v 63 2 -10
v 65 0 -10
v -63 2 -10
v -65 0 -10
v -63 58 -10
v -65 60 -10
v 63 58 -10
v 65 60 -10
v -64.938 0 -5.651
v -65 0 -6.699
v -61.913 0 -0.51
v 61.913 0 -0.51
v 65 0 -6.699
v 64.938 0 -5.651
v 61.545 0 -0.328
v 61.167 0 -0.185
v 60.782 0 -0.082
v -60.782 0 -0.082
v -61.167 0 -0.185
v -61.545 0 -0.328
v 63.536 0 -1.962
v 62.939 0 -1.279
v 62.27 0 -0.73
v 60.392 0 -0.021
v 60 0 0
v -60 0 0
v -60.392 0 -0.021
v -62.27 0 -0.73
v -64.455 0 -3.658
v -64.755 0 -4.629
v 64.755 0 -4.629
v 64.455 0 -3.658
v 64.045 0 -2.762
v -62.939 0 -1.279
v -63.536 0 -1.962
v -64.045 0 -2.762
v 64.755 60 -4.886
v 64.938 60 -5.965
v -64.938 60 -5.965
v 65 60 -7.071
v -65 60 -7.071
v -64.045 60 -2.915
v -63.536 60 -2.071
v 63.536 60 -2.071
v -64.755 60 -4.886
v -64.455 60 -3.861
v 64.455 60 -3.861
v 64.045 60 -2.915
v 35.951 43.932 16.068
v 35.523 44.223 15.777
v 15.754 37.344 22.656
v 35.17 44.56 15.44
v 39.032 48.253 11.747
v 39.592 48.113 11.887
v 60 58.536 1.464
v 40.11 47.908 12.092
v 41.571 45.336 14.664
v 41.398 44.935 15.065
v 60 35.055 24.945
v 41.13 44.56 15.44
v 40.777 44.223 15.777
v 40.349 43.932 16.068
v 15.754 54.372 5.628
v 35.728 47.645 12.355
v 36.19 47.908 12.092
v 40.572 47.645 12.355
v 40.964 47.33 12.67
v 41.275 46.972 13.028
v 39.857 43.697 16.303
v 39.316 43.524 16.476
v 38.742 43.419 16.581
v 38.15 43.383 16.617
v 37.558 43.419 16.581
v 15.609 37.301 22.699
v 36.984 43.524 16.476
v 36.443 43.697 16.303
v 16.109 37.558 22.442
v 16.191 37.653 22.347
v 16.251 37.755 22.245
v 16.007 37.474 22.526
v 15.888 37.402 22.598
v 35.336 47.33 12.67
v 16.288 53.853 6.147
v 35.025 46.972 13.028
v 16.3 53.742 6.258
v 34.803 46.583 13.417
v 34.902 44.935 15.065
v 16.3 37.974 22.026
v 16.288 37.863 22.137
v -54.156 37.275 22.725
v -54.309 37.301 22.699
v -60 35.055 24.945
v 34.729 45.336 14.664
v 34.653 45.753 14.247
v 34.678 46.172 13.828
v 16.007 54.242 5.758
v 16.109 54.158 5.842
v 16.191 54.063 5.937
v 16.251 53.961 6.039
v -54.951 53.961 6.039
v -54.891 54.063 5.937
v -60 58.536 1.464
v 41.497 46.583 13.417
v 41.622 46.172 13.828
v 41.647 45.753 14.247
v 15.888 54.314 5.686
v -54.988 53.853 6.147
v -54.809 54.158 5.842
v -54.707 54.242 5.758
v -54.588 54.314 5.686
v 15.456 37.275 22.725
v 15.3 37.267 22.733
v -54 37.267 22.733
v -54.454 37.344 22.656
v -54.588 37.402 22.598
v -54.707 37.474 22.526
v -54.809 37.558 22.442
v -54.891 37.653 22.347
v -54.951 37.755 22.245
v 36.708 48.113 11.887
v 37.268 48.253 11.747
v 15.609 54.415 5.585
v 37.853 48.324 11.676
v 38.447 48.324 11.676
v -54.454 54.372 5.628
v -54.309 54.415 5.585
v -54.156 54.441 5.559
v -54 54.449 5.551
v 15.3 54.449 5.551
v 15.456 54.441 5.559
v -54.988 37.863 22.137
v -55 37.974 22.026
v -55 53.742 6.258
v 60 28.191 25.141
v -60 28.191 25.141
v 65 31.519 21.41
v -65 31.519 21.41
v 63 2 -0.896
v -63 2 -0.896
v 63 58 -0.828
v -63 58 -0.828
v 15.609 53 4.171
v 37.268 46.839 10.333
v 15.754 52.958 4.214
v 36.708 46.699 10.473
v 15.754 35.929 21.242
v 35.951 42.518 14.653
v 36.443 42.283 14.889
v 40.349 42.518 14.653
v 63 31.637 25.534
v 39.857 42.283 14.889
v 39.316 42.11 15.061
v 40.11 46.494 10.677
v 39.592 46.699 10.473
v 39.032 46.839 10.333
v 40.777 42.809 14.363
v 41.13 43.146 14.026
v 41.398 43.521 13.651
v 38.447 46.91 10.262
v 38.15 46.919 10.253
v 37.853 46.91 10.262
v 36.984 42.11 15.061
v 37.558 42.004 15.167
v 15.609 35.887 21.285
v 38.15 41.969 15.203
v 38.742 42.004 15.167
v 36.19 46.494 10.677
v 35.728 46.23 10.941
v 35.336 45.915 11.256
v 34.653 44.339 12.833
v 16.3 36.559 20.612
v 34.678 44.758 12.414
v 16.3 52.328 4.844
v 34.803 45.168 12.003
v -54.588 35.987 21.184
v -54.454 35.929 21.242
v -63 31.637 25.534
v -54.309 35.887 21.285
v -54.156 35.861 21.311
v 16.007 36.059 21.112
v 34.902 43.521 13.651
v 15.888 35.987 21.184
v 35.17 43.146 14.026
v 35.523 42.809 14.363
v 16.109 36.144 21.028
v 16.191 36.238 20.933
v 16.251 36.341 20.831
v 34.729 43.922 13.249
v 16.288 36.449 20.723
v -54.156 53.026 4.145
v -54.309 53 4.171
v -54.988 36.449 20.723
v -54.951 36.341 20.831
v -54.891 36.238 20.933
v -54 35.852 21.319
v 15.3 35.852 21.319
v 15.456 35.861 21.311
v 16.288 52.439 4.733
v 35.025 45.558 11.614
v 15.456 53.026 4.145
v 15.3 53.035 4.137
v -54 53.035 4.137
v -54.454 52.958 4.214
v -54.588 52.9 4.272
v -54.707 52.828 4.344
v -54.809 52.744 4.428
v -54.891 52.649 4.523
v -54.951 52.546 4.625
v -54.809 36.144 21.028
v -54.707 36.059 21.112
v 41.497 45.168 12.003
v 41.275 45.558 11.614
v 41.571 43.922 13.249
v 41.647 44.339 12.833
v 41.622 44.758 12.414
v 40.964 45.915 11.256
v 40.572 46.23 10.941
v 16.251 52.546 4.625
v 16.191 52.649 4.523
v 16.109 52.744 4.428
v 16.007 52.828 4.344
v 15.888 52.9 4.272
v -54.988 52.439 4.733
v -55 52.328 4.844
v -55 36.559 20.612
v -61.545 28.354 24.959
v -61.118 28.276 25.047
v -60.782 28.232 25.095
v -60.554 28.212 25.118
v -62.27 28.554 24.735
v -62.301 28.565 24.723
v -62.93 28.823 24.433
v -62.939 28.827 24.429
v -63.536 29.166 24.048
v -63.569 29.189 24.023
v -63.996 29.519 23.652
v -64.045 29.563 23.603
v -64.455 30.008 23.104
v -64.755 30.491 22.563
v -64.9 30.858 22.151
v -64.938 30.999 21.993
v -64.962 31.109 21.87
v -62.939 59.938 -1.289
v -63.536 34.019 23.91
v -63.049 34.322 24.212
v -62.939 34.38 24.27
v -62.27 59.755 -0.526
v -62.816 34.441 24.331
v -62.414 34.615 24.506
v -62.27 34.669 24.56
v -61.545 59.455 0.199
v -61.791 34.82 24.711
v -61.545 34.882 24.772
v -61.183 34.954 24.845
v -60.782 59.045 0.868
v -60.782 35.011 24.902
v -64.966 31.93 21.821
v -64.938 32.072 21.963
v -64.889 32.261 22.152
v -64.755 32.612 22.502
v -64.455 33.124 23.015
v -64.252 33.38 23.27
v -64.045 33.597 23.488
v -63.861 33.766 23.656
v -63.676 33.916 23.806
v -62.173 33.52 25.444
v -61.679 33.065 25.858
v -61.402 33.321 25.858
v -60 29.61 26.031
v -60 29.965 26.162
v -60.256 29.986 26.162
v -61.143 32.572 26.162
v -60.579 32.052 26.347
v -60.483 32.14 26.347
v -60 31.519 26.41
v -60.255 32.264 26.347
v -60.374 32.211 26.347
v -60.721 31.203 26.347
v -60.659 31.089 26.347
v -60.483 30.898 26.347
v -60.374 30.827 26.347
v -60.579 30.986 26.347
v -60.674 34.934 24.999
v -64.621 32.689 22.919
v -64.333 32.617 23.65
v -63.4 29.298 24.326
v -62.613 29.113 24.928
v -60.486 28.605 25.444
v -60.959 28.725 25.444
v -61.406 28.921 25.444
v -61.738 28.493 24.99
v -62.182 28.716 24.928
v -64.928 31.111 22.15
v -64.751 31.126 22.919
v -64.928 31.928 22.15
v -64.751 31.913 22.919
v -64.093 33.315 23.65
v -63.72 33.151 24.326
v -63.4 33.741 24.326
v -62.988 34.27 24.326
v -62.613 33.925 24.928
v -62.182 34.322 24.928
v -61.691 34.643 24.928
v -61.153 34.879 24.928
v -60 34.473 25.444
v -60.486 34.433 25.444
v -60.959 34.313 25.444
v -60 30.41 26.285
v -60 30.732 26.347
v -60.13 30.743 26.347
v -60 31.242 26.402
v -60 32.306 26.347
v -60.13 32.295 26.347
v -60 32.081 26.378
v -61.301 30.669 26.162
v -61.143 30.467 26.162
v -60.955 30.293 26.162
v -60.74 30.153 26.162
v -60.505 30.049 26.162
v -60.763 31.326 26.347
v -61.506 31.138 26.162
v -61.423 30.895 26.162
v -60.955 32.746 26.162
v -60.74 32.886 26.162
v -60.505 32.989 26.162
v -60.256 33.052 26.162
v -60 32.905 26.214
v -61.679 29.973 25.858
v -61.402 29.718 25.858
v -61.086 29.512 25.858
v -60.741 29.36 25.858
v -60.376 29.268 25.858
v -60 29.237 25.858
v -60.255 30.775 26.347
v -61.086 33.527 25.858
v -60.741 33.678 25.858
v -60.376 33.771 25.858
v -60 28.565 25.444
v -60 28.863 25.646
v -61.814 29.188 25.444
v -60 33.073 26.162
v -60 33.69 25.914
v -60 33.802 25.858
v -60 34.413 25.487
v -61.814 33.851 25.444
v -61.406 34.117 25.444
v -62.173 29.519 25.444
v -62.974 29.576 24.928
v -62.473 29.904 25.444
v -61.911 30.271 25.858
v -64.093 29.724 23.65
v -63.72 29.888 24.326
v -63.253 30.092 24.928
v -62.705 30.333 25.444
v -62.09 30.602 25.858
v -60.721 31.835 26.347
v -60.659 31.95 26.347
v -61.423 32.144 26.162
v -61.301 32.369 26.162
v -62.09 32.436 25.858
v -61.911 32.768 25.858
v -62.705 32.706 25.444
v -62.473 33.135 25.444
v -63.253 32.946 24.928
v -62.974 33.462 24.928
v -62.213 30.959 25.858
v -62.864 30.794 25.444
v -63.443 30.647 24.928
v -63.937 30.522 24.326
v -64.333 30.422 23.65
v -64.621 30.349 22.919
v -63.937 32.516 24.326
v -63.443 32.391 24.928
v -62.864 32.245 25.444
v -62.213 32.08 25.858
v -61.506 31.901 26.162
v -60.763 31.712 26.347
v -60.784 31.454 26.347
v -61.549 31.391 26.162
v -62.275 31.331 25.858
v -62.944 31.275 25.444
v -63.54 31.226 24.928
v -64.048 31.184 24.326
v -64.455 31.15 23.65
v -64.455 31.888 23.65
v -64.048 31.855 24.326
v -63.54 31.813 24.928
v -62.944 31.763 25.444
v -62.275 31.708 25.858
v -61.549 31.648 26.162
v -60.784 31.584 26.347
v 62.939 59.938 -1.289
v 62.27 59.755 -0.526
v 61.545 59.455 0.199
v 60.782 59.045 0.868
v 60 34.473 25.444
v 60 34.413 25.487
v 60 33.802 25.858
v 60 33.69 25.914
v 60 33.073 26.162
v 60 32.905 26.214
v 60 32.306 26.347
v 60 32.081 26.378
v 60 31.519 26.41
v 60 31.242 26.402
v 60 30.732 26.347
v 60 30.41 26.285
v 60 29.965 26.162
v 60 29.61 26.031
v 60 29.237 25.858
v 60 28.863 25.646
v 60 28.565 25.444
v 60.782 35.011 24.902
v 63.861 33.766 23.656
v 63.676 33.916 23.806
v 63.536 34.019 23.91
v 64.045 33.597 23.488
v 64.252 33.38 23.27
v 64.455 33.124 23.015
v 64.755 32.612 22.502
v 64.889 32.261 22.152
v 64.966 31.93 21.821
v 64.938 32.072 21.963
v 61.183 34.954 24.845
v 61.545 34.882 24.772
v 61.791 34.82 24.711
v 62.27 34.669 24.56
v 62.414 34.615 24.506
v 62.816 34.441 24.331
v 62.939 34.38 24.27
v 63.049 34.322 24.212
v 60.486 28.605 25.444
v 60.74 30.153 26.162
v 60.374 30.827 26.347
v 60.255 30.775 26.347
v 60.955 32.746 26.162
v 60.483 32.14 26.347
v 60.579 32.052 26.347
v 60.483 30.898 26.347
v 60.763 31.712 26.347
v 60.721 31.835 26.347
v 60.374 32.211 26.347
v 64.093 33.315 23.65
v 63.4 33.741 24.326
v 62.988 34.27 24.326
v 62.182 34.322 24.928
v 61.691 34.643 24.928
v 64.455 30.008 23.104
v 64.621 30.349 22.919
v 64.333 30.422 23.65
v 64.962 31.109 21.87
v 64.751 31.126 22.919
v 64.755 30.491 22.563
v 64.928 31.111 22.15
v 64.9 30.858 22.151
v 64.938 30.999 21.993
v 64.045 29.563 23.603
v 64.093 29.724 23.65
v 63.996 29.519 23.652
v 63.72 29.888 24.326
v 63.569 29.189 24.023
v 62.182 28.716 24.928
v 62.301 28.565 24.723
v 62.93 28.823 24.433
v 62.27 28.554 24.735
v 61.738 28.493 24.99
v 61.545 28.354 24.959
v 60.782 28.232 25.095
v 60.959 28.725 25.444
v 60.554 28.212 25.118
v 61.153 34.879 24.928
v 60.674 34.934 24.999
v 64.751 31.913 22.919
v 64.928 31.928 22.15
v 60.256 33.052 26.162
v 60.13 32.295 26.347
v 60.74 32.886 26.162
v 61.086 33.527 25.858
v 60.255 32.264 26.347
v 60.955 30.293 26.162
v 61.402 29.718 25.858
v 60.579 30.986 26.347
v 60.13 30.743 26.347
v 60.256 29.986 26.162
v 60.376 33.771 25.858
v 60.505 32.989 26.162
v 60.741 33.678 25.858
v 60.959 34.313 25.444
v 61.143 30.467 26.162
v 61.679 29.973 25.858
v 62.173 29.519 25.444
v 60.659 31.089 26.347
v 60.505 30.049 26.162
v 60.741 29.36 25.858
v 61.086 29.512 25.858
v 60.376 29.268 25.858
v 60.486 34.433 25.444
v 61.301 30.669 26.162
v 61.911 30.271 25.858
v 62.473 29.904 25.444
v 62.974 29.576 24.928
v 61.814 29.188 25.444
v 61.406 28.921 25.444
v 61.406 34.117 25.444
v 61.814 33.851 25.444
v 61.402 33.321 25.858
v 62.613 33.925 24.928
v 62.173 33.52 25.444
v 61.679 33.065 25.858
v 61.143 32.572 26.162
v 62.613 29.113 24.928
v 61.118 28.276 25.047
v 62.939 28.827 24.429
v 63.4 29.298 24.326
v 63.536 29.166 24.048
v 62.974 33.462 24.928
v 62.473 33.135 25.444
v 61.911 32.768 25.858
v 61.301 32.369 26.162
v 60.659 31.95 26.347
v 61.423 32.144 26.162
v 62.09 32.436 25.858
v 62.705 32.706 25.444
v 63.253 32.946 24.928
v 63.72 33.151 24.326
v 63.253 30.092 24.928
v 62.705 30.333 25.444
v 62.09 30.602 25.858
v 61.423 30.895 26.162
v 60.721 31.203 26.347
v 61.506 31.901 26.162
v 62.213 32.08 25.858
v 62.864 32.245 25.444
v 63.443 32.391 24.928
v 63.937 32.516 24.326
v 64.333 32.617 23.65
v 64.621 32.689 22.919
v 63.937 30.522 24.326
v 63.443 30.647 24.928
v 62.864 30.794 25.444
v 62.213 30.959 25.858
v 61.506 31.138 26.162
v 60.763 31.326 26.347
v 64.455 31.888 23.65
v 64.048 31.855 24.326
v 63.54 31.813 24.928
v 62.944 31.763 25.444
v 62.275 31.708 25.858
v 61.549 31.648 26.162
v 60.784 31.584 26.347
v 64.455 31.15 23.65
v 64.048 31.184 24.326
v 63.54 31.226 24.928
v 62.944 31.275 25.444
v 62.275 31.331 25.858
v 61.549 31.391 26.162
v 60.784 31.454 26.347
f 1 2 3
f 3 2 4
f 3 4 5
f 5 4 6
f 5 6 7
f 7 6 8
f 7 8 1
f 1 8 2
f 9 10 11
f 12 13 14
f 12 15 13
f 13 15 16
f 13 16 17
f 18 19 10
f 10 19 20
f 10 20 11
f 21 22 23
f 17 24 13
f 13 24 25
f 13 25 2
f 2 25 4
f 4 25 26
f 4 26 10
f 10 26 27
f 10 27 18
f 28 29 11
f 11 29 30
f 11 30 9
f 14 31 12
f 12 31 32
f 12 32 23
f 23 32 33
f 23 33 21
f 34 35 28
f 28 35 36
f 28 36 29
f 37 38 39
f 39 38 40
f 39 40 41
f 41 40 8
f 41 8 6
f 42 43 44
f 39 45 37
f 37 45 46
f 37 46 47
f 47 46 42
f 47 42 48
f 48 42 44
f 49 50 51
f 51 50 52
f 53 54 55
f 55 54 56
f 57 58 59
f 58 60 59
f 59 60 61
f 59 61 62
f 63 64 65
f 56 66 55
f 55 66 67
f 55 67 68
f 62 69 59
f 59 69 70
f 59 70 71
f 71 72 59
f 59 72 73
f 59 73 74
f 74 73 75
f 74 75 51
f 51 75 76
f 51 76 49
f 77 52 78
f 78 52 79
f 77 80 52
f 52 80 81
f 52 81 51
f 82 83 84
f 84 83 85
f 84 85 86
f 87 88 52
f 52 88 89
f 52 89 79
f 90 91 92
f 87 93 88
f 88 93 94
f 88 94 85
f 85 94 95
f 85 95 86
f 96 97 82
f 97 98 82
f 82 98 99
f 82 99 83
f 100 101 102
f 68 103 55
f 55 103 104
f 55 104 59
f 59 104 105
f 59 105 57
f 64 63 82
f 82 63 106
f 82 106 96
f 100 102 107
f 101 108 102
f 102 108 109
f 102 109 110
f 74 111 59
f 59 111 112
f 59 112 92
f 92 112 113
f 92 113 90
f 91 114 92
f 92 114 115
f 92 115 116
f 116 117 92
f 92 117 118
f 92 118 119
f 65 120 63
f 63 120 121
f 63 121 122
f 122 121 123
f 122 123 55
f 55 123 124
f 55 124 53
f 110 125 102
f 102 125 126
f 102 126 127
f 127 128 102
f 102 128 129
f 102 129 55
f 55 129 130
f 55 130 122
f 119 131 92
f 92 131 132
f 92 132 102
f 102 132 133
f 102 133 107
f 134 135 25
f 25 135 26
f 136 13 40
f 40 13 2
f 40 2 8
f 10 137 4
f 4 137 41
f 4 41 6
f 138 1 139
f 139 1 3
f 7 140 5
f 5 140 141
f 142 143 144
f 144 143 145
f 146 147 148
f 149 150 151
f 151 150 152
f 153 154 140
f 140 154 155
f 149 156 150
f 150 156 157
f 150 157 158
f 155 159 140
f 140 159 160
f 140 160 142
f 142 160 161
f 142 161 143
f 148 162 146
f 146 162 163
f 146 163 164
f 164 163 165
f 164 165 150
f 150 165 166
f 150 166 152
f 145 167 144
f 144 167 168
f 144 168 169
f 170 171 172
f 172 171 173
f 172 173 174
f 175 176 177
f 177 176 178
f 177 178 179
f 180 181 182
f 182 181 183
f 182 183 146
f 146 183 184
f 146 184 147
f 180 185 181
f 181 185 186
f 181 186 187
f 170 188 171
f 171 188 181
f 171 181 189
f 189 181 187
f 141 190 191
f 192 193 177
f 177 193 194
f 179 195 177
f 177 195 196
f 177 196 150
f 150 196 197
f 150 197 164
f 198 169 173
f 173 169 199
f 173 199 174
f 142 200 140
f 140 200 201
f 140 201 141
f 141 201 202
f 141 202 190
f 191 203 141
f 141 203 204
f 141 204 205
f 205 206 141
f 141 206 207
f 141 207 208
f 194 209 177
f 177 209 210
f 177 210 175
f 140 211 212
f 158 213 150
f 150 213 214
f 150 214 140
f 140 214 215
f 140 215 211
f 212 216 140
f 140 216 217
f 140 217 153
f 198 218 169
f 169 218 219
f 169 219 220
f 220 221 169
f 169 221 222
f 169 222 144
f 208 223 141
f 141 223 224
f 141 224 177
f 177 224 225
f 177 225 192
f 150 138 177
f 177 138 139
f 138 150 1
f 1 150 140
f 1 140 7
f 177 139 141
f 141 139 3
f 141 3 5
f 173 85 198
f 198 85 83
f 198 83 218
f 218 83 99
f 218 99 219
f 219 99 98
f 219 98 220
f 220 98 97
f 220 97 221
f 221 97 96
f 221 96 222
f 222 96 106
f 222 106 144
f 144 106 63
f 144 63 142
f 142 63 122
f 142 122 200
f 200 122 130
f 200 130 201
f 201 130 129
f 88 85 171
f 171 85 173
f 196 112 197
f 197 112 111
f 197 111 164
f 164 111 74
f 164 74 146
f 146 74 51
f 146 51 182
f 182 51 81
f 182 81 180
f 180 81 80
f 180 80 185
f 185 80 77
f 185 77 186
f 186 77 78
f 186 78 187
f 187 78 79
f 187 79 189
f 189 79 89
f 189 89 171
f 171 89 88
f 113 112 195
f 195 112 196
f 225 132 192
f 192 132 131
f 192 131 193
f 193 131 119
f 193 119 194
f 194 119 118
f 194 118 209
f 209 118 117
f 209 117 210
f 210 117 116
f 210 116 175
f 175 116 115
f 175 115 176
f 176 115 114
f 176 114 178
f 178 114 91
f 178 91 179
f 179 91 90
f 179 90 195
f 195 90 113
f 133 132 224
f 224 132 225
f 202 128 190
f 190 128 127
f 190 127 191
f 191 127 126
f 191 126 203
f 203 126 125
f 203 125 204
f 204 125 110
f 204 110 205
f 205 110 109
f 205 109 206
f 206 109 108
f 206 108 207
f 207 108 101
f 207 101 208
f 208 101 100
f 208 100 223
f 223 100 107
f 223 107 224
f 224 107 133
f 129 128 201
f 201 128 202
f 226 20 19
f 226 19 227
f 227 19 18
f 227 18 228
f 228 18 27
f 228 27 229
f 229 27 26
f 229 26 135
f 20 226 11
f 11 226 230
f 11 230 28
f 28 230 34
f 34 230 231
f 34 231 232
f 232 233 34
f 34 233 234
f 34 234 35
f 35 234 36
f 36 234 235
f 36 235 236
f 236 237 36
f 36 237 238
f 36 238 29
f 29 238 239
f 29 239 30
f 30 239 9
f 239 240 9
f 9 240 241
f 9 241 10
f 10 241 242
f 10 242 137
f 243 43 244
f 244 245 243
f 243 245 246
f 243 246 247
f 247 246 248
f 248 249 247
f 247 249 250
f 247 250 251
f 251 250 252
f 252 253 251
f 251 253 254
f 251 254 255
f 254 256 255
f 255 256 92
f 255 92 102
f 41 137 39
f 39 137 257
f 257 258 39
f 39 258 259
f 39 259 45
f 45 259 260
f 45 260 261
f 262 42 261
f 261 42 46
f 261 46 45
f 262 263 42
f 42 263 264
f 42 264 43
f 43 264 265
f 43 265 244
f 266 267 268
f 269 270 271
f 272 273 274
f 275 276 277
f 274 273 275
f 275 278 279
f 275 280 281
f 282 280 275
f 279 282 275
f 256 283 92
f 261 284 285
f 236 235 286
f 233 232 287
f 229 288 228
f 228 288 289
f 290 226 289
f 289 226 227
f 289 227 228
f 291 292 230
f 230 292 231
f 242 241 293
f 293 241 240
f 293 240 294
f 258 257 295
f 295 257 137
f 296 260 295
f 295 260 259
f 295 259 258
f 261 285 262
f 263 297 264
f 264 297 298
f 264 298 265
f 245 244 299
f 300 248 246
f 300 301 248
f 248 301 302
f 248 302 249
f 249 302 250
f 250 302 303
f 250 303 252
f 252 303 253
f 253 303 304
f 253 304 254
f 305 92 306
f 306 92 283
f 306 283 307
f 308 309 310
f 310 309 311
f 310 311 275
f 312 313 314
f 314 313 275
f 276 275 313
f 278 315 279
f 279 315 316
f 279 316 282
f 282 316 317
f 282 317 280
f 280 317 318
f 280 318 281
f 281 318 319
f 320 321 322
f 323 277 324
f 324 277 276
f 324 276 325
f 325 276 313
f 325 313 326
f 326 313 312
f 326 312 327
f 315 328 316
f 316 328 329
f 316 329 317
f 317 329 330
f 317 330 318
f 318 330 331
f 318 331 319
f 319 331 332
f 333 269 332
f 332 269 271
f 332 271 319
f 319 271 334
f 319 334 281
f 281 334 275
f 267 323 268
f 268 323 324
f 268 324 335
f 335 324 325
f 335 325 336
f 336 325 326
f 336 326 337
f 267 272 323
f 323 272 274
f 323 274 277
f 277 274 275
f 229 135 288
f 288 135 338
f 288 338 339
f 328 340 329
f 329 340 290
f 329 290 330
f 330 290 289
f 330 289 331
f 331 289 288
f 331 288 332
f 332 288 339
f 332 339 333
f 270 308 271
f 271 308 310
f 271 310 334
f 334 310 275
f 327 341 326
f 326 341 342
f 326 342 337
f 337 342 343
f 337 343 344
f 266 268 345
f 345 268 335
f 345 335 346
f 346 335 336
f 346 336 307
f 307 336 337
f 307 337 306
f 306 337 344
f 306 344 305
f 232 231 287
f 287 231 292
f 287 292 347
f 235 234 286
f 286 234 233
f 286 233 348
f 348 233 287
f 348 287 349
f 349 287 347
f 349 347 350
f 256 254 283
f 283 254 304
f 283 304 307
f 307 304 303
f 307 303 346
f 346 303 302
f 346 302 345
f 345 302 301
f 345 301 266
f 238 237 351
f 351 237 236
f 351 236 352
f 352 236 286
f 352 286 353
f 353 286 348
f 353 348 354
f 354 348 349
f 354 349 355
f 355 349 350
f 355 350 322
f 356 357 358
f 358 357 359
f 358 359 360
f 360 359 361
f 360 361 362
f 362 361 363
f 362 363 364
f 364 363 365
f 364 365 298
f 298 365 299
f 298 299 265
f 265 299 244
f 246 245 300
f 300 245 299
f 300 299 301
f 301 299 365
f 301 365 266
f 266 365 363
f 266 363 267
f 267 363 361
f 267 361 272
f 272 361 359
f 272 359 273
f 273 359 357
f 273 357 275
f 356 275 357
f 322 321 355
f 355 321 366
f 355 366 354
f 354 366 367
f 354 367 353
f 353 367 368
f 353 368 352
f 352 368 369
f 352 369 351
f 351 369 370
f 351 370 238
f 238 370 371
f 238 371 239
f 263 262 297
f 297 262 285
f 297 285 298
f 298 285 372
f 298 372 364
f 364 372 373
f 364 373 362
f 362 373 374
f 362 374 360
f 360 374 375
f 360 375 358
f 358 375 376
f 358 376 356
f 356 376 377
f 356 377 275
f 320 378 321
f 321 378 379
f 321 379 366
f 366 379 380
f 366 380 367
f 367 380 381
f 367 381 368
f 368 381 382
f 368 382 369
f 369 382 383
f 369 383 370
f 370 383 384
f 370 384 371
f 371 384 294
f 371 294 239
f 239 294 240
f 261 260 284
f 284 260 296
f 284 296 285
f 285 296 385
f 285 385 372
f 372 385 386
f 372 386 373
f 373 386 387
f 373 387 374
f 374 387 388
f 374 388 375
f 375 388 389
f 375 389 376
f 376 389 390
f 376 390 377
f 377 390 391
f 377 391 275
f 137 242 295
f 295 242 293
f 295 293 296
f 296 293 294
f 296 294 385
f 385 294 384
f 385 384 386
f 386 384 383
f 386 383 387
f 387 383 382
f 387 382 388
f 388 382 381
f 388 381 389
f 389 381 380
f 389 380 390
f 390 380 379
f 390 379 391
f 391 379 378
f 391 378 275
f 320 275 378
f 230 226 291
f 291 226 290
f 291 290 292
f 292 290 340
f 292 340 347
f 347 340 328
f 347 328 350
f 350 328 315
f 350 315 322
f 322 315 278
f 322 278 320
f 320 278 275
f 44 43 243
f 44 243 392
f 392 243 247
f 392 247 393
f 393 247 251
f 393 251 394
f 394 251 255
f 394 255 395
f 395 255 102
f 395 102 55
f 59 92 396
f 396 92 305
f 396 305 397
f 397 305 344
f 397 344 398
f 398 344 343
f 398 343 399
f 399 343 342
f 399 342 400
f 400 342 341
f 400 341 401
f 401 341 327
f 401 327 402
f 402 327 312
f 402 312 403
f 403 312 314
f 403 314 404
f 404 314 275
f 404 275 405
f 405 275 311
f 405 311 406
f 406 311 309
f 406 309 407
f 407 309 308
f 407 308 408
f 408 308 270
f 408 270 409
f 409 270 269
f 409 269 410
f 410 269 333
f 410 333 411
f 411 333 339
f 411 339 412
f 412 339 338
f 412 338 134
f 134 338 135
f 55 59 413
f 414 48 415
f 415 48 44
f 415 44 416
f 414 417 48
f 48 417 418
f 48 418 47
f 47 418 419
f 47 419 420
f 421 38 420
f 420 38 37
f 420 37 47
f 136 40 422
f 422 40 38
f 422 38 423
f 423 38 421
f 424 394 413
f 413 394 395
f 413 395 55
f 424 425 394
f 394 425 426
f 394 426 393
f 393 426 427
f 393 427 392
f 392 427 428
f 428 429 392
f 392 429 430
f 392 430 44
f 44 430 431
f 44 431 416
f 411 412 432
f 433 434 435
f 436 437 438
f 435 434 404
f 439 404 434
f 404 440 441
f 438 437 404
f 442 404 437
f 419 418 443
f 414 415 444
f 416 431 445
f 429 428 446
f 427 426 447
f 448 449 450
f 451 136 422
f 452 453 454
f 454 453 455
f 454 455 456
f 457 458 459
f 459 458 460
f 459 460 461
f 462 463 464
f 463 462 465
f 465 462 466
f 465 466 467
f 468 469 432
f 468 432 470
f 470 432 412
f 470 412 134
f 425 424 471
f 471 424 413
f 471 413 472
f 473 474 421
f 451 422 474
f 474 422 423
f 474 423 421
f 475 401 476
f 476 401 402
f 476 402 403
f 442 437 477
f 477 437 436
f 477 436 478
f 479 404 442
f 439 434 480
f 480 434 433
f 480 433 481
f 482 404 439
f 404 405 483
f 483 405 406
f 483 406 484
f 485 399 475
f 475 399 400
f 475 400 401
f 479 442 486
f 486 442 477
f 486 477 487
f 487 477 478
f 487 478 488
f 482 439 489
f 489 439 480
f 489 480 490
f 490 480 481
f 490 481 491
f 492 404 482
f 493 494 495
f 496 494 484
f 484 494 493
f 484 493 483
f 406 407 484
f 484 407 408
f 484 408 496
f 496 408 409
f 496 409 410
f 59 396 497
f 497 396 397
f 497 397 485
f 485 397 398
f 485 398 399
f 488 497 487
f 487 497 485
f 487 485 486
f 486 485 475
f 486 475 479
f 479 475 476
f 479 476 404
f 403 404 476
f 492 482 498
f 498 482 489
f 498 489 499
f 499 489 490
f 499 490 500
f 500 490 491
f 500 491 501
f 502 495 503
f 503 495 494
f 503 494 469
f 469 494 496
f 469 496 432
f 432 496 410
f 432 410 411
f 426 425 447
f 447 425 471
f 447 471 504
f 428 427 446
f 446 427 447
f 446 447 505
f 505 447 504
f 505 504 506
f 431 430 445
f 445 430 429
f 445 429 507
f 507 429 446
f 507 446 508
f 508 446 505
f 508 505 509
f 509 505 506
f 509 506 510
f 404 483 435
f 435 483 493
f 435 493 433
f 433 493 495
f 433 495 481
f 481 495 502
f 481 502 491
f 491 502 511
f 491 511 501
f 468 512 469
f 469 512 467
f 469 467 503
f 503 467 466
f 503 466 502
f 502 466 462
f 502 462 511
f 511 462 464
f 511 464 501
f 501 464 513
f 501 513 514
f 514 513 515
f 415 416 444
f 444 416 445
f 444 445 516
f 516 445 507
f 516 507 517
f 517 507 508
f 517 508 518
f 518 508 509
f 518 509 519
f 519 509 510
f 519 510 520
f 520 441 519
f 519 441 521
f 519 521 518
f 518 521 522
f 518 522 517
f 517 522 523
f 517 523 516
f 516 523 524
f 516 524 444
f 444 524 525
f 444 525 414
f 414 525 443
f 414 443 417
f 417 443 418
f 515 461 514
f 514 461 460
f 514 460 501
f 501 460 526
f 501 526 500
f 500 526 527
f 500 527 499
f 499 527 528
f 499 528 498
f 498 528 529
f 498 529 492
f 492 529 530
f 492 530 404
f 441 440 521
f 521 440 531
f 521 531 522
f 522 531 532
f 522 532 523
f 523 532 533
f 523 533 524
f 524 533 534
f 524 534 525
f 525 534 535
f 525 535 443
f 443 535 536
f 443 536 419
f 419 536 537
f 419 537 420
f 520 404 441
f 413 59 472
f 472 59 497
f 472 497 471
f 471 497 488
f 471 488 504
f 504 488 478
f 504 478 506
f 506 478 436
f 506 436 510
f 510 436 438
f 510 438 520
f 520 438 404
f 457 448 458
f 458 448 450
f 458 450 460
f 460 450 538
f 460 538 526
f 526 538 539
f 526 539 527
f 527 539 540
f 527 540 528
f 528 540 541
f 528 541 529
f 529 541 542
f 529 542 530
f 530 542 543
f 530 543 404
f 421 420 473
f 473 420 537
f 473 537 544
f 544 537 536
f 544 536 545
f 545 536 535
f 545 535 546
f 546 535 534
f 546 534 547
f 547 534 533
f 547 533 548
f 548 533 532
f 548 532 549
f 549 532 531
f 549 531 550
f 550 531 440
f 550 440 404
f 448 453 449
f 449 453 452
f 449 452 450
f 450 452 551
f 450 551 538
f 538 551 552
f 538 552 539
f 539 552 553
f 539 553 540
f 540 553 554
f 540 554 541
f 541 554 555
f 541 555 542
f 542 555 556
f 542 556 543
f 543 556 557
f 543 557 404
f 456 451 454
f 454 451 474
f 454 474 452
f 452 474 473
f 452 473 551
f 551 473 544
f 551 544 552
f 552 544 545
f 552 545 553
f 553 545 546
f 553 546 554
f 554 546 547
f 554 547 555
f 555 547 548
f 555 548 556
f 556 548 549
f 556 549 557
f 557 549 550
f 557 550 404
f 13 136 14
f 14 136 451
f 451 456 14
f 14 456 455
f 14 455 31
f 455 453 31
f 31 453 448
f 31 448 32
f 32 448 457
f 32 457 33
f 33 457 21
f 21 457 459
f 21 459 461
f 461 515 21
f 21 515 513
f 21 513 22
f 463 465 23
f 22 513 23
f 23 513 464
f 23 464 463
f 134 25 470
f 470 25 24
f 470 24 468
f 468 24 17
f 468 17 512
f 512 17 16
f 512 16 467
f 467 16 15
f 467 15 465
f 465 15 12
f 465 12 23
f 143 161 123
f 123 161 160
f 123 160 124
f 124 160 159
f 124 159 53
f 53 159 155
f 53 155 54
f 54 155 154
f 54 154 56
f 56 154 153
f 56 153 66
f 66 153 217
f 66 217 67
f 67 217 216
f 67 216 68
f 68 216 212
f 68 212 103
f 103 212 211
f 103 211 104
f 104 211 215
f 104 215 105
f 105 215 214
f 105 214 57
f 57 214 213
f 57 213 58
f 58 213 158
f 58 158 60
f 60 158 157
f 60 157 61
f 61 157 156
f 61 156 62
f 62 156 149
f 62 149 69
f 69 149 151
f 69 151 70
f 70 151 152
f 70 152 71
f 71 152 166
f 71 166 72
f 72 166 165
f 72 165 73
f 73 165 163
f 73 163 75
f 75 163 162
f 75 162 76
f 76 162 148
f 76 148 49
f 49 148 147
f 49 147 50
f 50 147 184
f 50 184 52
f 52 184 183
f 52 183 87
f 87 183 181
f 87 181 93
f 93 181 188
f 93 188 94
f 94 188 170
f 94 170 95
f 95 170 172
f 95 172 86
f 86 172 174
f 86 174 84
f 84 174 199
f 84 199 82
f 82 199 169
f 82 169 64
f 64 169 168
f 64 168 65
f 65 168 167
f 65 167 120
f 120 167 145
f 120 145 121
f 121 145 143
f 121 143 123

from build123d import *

# Parameters (mm, degrees)
BOSS_EXTRUDE1_DEPTH = 65
SHELL1_T            = -2
CUT_EXTRUDE1_DEPTH  = 100
FILLET1_R           = 5
SKETCH3_R           = 3.5
CUT_EXTRUDE2_DEPTH  = 100


with BuildPart() as part:
    # Sketch1 → Boss-Extrude1 (new body, symmetric)
    with BuildSketch(Plane(origin=(0, 0, 0), x_dir=(0, 0, -1), z_dir=(1, 0, 0))):
        Polygon((0, 60), (-28.284271247, 31.715728753), (0, 0), (10, 0), (10, 60), align=None)
    extrude(amount=BOSS_EXTRUDE1_DEPTH, both=True)

    # Shell1
    shell1_openings = [part.faces().sort_by_distance(p)[0] for p in [
        (0, 30, -10),
    ]]
    offset(amount=SHELL1_T, openings=shell1_openings, kind=Kind.INTERSECTION)

    # Sketch2 → Cut-Extrude1 (cut)
    with BuildSketch(Plane(origin=(0, 30, 30), x_dir=(1, 0, 0), z_dir=(0, 0.707106781, 0.707106781))):
        with BuildLine():
            Line((15.3, 10.276406871), (-54, 10.276406871))
            ThreePointArc((-54, 10.276406871), (-54.707106781, 10.56930009), (-55, 11.276406871))
            Line((-55, 11.276406871), (-55, 33.576406871))
            ThreePointArc((-55, 33.576406871), (-54.707106781, 34.283513652), (-54, 34.576406871))
            Line((-54, 34.576406871), (15.3, 34.576406871))
            ThreePointArc((15.3, 34.576406871), (16.007106781, 34.283513652), (16.3, 33.576406871))
            Line((16.3, 33.576406871), (16.3, 11.276406871))
            ThreePointArc((16.3, 11.276406871), (16.007106781, 10.56930009), (15.3, 10.276406871))
        make_face()
    extrude(amount=-CUT_EXTRUDE1_DEPTH, mode=Mode.SUBTRACT)

    # Fillet1
    fillet1_edges = [part.edges().sort_by_distance(p)[0] for p in [
        (65, 45.857864376, 14.142135624),
        (65, 15.857864376, 14.142135624),
        (-65, 15.857864376, 14.142135624),
        (-65, 45.857864376, 14.142135624),
        (0, 31.715728753, 28.284271247),
        (0, 60, 0),
    ]]
    fillet(fillet1_edges, radius=FILLET1_R)

    # Sketch3 → Cut-Extrude2 (cut)
    with BuildSketch(Plane(origin=(0, 30, 30), x_dir=(1, 0, 0), z_dir=(0, 0.707106781, 0.707106781))):
        with Locations((38.15, 22.426406871)):
            Circle(SKETCH3_R)
    extrude(amount=-CUT_EXTRUDE2_DEPTH, mode=Mode.SUBTRACT)


solid = part.part
